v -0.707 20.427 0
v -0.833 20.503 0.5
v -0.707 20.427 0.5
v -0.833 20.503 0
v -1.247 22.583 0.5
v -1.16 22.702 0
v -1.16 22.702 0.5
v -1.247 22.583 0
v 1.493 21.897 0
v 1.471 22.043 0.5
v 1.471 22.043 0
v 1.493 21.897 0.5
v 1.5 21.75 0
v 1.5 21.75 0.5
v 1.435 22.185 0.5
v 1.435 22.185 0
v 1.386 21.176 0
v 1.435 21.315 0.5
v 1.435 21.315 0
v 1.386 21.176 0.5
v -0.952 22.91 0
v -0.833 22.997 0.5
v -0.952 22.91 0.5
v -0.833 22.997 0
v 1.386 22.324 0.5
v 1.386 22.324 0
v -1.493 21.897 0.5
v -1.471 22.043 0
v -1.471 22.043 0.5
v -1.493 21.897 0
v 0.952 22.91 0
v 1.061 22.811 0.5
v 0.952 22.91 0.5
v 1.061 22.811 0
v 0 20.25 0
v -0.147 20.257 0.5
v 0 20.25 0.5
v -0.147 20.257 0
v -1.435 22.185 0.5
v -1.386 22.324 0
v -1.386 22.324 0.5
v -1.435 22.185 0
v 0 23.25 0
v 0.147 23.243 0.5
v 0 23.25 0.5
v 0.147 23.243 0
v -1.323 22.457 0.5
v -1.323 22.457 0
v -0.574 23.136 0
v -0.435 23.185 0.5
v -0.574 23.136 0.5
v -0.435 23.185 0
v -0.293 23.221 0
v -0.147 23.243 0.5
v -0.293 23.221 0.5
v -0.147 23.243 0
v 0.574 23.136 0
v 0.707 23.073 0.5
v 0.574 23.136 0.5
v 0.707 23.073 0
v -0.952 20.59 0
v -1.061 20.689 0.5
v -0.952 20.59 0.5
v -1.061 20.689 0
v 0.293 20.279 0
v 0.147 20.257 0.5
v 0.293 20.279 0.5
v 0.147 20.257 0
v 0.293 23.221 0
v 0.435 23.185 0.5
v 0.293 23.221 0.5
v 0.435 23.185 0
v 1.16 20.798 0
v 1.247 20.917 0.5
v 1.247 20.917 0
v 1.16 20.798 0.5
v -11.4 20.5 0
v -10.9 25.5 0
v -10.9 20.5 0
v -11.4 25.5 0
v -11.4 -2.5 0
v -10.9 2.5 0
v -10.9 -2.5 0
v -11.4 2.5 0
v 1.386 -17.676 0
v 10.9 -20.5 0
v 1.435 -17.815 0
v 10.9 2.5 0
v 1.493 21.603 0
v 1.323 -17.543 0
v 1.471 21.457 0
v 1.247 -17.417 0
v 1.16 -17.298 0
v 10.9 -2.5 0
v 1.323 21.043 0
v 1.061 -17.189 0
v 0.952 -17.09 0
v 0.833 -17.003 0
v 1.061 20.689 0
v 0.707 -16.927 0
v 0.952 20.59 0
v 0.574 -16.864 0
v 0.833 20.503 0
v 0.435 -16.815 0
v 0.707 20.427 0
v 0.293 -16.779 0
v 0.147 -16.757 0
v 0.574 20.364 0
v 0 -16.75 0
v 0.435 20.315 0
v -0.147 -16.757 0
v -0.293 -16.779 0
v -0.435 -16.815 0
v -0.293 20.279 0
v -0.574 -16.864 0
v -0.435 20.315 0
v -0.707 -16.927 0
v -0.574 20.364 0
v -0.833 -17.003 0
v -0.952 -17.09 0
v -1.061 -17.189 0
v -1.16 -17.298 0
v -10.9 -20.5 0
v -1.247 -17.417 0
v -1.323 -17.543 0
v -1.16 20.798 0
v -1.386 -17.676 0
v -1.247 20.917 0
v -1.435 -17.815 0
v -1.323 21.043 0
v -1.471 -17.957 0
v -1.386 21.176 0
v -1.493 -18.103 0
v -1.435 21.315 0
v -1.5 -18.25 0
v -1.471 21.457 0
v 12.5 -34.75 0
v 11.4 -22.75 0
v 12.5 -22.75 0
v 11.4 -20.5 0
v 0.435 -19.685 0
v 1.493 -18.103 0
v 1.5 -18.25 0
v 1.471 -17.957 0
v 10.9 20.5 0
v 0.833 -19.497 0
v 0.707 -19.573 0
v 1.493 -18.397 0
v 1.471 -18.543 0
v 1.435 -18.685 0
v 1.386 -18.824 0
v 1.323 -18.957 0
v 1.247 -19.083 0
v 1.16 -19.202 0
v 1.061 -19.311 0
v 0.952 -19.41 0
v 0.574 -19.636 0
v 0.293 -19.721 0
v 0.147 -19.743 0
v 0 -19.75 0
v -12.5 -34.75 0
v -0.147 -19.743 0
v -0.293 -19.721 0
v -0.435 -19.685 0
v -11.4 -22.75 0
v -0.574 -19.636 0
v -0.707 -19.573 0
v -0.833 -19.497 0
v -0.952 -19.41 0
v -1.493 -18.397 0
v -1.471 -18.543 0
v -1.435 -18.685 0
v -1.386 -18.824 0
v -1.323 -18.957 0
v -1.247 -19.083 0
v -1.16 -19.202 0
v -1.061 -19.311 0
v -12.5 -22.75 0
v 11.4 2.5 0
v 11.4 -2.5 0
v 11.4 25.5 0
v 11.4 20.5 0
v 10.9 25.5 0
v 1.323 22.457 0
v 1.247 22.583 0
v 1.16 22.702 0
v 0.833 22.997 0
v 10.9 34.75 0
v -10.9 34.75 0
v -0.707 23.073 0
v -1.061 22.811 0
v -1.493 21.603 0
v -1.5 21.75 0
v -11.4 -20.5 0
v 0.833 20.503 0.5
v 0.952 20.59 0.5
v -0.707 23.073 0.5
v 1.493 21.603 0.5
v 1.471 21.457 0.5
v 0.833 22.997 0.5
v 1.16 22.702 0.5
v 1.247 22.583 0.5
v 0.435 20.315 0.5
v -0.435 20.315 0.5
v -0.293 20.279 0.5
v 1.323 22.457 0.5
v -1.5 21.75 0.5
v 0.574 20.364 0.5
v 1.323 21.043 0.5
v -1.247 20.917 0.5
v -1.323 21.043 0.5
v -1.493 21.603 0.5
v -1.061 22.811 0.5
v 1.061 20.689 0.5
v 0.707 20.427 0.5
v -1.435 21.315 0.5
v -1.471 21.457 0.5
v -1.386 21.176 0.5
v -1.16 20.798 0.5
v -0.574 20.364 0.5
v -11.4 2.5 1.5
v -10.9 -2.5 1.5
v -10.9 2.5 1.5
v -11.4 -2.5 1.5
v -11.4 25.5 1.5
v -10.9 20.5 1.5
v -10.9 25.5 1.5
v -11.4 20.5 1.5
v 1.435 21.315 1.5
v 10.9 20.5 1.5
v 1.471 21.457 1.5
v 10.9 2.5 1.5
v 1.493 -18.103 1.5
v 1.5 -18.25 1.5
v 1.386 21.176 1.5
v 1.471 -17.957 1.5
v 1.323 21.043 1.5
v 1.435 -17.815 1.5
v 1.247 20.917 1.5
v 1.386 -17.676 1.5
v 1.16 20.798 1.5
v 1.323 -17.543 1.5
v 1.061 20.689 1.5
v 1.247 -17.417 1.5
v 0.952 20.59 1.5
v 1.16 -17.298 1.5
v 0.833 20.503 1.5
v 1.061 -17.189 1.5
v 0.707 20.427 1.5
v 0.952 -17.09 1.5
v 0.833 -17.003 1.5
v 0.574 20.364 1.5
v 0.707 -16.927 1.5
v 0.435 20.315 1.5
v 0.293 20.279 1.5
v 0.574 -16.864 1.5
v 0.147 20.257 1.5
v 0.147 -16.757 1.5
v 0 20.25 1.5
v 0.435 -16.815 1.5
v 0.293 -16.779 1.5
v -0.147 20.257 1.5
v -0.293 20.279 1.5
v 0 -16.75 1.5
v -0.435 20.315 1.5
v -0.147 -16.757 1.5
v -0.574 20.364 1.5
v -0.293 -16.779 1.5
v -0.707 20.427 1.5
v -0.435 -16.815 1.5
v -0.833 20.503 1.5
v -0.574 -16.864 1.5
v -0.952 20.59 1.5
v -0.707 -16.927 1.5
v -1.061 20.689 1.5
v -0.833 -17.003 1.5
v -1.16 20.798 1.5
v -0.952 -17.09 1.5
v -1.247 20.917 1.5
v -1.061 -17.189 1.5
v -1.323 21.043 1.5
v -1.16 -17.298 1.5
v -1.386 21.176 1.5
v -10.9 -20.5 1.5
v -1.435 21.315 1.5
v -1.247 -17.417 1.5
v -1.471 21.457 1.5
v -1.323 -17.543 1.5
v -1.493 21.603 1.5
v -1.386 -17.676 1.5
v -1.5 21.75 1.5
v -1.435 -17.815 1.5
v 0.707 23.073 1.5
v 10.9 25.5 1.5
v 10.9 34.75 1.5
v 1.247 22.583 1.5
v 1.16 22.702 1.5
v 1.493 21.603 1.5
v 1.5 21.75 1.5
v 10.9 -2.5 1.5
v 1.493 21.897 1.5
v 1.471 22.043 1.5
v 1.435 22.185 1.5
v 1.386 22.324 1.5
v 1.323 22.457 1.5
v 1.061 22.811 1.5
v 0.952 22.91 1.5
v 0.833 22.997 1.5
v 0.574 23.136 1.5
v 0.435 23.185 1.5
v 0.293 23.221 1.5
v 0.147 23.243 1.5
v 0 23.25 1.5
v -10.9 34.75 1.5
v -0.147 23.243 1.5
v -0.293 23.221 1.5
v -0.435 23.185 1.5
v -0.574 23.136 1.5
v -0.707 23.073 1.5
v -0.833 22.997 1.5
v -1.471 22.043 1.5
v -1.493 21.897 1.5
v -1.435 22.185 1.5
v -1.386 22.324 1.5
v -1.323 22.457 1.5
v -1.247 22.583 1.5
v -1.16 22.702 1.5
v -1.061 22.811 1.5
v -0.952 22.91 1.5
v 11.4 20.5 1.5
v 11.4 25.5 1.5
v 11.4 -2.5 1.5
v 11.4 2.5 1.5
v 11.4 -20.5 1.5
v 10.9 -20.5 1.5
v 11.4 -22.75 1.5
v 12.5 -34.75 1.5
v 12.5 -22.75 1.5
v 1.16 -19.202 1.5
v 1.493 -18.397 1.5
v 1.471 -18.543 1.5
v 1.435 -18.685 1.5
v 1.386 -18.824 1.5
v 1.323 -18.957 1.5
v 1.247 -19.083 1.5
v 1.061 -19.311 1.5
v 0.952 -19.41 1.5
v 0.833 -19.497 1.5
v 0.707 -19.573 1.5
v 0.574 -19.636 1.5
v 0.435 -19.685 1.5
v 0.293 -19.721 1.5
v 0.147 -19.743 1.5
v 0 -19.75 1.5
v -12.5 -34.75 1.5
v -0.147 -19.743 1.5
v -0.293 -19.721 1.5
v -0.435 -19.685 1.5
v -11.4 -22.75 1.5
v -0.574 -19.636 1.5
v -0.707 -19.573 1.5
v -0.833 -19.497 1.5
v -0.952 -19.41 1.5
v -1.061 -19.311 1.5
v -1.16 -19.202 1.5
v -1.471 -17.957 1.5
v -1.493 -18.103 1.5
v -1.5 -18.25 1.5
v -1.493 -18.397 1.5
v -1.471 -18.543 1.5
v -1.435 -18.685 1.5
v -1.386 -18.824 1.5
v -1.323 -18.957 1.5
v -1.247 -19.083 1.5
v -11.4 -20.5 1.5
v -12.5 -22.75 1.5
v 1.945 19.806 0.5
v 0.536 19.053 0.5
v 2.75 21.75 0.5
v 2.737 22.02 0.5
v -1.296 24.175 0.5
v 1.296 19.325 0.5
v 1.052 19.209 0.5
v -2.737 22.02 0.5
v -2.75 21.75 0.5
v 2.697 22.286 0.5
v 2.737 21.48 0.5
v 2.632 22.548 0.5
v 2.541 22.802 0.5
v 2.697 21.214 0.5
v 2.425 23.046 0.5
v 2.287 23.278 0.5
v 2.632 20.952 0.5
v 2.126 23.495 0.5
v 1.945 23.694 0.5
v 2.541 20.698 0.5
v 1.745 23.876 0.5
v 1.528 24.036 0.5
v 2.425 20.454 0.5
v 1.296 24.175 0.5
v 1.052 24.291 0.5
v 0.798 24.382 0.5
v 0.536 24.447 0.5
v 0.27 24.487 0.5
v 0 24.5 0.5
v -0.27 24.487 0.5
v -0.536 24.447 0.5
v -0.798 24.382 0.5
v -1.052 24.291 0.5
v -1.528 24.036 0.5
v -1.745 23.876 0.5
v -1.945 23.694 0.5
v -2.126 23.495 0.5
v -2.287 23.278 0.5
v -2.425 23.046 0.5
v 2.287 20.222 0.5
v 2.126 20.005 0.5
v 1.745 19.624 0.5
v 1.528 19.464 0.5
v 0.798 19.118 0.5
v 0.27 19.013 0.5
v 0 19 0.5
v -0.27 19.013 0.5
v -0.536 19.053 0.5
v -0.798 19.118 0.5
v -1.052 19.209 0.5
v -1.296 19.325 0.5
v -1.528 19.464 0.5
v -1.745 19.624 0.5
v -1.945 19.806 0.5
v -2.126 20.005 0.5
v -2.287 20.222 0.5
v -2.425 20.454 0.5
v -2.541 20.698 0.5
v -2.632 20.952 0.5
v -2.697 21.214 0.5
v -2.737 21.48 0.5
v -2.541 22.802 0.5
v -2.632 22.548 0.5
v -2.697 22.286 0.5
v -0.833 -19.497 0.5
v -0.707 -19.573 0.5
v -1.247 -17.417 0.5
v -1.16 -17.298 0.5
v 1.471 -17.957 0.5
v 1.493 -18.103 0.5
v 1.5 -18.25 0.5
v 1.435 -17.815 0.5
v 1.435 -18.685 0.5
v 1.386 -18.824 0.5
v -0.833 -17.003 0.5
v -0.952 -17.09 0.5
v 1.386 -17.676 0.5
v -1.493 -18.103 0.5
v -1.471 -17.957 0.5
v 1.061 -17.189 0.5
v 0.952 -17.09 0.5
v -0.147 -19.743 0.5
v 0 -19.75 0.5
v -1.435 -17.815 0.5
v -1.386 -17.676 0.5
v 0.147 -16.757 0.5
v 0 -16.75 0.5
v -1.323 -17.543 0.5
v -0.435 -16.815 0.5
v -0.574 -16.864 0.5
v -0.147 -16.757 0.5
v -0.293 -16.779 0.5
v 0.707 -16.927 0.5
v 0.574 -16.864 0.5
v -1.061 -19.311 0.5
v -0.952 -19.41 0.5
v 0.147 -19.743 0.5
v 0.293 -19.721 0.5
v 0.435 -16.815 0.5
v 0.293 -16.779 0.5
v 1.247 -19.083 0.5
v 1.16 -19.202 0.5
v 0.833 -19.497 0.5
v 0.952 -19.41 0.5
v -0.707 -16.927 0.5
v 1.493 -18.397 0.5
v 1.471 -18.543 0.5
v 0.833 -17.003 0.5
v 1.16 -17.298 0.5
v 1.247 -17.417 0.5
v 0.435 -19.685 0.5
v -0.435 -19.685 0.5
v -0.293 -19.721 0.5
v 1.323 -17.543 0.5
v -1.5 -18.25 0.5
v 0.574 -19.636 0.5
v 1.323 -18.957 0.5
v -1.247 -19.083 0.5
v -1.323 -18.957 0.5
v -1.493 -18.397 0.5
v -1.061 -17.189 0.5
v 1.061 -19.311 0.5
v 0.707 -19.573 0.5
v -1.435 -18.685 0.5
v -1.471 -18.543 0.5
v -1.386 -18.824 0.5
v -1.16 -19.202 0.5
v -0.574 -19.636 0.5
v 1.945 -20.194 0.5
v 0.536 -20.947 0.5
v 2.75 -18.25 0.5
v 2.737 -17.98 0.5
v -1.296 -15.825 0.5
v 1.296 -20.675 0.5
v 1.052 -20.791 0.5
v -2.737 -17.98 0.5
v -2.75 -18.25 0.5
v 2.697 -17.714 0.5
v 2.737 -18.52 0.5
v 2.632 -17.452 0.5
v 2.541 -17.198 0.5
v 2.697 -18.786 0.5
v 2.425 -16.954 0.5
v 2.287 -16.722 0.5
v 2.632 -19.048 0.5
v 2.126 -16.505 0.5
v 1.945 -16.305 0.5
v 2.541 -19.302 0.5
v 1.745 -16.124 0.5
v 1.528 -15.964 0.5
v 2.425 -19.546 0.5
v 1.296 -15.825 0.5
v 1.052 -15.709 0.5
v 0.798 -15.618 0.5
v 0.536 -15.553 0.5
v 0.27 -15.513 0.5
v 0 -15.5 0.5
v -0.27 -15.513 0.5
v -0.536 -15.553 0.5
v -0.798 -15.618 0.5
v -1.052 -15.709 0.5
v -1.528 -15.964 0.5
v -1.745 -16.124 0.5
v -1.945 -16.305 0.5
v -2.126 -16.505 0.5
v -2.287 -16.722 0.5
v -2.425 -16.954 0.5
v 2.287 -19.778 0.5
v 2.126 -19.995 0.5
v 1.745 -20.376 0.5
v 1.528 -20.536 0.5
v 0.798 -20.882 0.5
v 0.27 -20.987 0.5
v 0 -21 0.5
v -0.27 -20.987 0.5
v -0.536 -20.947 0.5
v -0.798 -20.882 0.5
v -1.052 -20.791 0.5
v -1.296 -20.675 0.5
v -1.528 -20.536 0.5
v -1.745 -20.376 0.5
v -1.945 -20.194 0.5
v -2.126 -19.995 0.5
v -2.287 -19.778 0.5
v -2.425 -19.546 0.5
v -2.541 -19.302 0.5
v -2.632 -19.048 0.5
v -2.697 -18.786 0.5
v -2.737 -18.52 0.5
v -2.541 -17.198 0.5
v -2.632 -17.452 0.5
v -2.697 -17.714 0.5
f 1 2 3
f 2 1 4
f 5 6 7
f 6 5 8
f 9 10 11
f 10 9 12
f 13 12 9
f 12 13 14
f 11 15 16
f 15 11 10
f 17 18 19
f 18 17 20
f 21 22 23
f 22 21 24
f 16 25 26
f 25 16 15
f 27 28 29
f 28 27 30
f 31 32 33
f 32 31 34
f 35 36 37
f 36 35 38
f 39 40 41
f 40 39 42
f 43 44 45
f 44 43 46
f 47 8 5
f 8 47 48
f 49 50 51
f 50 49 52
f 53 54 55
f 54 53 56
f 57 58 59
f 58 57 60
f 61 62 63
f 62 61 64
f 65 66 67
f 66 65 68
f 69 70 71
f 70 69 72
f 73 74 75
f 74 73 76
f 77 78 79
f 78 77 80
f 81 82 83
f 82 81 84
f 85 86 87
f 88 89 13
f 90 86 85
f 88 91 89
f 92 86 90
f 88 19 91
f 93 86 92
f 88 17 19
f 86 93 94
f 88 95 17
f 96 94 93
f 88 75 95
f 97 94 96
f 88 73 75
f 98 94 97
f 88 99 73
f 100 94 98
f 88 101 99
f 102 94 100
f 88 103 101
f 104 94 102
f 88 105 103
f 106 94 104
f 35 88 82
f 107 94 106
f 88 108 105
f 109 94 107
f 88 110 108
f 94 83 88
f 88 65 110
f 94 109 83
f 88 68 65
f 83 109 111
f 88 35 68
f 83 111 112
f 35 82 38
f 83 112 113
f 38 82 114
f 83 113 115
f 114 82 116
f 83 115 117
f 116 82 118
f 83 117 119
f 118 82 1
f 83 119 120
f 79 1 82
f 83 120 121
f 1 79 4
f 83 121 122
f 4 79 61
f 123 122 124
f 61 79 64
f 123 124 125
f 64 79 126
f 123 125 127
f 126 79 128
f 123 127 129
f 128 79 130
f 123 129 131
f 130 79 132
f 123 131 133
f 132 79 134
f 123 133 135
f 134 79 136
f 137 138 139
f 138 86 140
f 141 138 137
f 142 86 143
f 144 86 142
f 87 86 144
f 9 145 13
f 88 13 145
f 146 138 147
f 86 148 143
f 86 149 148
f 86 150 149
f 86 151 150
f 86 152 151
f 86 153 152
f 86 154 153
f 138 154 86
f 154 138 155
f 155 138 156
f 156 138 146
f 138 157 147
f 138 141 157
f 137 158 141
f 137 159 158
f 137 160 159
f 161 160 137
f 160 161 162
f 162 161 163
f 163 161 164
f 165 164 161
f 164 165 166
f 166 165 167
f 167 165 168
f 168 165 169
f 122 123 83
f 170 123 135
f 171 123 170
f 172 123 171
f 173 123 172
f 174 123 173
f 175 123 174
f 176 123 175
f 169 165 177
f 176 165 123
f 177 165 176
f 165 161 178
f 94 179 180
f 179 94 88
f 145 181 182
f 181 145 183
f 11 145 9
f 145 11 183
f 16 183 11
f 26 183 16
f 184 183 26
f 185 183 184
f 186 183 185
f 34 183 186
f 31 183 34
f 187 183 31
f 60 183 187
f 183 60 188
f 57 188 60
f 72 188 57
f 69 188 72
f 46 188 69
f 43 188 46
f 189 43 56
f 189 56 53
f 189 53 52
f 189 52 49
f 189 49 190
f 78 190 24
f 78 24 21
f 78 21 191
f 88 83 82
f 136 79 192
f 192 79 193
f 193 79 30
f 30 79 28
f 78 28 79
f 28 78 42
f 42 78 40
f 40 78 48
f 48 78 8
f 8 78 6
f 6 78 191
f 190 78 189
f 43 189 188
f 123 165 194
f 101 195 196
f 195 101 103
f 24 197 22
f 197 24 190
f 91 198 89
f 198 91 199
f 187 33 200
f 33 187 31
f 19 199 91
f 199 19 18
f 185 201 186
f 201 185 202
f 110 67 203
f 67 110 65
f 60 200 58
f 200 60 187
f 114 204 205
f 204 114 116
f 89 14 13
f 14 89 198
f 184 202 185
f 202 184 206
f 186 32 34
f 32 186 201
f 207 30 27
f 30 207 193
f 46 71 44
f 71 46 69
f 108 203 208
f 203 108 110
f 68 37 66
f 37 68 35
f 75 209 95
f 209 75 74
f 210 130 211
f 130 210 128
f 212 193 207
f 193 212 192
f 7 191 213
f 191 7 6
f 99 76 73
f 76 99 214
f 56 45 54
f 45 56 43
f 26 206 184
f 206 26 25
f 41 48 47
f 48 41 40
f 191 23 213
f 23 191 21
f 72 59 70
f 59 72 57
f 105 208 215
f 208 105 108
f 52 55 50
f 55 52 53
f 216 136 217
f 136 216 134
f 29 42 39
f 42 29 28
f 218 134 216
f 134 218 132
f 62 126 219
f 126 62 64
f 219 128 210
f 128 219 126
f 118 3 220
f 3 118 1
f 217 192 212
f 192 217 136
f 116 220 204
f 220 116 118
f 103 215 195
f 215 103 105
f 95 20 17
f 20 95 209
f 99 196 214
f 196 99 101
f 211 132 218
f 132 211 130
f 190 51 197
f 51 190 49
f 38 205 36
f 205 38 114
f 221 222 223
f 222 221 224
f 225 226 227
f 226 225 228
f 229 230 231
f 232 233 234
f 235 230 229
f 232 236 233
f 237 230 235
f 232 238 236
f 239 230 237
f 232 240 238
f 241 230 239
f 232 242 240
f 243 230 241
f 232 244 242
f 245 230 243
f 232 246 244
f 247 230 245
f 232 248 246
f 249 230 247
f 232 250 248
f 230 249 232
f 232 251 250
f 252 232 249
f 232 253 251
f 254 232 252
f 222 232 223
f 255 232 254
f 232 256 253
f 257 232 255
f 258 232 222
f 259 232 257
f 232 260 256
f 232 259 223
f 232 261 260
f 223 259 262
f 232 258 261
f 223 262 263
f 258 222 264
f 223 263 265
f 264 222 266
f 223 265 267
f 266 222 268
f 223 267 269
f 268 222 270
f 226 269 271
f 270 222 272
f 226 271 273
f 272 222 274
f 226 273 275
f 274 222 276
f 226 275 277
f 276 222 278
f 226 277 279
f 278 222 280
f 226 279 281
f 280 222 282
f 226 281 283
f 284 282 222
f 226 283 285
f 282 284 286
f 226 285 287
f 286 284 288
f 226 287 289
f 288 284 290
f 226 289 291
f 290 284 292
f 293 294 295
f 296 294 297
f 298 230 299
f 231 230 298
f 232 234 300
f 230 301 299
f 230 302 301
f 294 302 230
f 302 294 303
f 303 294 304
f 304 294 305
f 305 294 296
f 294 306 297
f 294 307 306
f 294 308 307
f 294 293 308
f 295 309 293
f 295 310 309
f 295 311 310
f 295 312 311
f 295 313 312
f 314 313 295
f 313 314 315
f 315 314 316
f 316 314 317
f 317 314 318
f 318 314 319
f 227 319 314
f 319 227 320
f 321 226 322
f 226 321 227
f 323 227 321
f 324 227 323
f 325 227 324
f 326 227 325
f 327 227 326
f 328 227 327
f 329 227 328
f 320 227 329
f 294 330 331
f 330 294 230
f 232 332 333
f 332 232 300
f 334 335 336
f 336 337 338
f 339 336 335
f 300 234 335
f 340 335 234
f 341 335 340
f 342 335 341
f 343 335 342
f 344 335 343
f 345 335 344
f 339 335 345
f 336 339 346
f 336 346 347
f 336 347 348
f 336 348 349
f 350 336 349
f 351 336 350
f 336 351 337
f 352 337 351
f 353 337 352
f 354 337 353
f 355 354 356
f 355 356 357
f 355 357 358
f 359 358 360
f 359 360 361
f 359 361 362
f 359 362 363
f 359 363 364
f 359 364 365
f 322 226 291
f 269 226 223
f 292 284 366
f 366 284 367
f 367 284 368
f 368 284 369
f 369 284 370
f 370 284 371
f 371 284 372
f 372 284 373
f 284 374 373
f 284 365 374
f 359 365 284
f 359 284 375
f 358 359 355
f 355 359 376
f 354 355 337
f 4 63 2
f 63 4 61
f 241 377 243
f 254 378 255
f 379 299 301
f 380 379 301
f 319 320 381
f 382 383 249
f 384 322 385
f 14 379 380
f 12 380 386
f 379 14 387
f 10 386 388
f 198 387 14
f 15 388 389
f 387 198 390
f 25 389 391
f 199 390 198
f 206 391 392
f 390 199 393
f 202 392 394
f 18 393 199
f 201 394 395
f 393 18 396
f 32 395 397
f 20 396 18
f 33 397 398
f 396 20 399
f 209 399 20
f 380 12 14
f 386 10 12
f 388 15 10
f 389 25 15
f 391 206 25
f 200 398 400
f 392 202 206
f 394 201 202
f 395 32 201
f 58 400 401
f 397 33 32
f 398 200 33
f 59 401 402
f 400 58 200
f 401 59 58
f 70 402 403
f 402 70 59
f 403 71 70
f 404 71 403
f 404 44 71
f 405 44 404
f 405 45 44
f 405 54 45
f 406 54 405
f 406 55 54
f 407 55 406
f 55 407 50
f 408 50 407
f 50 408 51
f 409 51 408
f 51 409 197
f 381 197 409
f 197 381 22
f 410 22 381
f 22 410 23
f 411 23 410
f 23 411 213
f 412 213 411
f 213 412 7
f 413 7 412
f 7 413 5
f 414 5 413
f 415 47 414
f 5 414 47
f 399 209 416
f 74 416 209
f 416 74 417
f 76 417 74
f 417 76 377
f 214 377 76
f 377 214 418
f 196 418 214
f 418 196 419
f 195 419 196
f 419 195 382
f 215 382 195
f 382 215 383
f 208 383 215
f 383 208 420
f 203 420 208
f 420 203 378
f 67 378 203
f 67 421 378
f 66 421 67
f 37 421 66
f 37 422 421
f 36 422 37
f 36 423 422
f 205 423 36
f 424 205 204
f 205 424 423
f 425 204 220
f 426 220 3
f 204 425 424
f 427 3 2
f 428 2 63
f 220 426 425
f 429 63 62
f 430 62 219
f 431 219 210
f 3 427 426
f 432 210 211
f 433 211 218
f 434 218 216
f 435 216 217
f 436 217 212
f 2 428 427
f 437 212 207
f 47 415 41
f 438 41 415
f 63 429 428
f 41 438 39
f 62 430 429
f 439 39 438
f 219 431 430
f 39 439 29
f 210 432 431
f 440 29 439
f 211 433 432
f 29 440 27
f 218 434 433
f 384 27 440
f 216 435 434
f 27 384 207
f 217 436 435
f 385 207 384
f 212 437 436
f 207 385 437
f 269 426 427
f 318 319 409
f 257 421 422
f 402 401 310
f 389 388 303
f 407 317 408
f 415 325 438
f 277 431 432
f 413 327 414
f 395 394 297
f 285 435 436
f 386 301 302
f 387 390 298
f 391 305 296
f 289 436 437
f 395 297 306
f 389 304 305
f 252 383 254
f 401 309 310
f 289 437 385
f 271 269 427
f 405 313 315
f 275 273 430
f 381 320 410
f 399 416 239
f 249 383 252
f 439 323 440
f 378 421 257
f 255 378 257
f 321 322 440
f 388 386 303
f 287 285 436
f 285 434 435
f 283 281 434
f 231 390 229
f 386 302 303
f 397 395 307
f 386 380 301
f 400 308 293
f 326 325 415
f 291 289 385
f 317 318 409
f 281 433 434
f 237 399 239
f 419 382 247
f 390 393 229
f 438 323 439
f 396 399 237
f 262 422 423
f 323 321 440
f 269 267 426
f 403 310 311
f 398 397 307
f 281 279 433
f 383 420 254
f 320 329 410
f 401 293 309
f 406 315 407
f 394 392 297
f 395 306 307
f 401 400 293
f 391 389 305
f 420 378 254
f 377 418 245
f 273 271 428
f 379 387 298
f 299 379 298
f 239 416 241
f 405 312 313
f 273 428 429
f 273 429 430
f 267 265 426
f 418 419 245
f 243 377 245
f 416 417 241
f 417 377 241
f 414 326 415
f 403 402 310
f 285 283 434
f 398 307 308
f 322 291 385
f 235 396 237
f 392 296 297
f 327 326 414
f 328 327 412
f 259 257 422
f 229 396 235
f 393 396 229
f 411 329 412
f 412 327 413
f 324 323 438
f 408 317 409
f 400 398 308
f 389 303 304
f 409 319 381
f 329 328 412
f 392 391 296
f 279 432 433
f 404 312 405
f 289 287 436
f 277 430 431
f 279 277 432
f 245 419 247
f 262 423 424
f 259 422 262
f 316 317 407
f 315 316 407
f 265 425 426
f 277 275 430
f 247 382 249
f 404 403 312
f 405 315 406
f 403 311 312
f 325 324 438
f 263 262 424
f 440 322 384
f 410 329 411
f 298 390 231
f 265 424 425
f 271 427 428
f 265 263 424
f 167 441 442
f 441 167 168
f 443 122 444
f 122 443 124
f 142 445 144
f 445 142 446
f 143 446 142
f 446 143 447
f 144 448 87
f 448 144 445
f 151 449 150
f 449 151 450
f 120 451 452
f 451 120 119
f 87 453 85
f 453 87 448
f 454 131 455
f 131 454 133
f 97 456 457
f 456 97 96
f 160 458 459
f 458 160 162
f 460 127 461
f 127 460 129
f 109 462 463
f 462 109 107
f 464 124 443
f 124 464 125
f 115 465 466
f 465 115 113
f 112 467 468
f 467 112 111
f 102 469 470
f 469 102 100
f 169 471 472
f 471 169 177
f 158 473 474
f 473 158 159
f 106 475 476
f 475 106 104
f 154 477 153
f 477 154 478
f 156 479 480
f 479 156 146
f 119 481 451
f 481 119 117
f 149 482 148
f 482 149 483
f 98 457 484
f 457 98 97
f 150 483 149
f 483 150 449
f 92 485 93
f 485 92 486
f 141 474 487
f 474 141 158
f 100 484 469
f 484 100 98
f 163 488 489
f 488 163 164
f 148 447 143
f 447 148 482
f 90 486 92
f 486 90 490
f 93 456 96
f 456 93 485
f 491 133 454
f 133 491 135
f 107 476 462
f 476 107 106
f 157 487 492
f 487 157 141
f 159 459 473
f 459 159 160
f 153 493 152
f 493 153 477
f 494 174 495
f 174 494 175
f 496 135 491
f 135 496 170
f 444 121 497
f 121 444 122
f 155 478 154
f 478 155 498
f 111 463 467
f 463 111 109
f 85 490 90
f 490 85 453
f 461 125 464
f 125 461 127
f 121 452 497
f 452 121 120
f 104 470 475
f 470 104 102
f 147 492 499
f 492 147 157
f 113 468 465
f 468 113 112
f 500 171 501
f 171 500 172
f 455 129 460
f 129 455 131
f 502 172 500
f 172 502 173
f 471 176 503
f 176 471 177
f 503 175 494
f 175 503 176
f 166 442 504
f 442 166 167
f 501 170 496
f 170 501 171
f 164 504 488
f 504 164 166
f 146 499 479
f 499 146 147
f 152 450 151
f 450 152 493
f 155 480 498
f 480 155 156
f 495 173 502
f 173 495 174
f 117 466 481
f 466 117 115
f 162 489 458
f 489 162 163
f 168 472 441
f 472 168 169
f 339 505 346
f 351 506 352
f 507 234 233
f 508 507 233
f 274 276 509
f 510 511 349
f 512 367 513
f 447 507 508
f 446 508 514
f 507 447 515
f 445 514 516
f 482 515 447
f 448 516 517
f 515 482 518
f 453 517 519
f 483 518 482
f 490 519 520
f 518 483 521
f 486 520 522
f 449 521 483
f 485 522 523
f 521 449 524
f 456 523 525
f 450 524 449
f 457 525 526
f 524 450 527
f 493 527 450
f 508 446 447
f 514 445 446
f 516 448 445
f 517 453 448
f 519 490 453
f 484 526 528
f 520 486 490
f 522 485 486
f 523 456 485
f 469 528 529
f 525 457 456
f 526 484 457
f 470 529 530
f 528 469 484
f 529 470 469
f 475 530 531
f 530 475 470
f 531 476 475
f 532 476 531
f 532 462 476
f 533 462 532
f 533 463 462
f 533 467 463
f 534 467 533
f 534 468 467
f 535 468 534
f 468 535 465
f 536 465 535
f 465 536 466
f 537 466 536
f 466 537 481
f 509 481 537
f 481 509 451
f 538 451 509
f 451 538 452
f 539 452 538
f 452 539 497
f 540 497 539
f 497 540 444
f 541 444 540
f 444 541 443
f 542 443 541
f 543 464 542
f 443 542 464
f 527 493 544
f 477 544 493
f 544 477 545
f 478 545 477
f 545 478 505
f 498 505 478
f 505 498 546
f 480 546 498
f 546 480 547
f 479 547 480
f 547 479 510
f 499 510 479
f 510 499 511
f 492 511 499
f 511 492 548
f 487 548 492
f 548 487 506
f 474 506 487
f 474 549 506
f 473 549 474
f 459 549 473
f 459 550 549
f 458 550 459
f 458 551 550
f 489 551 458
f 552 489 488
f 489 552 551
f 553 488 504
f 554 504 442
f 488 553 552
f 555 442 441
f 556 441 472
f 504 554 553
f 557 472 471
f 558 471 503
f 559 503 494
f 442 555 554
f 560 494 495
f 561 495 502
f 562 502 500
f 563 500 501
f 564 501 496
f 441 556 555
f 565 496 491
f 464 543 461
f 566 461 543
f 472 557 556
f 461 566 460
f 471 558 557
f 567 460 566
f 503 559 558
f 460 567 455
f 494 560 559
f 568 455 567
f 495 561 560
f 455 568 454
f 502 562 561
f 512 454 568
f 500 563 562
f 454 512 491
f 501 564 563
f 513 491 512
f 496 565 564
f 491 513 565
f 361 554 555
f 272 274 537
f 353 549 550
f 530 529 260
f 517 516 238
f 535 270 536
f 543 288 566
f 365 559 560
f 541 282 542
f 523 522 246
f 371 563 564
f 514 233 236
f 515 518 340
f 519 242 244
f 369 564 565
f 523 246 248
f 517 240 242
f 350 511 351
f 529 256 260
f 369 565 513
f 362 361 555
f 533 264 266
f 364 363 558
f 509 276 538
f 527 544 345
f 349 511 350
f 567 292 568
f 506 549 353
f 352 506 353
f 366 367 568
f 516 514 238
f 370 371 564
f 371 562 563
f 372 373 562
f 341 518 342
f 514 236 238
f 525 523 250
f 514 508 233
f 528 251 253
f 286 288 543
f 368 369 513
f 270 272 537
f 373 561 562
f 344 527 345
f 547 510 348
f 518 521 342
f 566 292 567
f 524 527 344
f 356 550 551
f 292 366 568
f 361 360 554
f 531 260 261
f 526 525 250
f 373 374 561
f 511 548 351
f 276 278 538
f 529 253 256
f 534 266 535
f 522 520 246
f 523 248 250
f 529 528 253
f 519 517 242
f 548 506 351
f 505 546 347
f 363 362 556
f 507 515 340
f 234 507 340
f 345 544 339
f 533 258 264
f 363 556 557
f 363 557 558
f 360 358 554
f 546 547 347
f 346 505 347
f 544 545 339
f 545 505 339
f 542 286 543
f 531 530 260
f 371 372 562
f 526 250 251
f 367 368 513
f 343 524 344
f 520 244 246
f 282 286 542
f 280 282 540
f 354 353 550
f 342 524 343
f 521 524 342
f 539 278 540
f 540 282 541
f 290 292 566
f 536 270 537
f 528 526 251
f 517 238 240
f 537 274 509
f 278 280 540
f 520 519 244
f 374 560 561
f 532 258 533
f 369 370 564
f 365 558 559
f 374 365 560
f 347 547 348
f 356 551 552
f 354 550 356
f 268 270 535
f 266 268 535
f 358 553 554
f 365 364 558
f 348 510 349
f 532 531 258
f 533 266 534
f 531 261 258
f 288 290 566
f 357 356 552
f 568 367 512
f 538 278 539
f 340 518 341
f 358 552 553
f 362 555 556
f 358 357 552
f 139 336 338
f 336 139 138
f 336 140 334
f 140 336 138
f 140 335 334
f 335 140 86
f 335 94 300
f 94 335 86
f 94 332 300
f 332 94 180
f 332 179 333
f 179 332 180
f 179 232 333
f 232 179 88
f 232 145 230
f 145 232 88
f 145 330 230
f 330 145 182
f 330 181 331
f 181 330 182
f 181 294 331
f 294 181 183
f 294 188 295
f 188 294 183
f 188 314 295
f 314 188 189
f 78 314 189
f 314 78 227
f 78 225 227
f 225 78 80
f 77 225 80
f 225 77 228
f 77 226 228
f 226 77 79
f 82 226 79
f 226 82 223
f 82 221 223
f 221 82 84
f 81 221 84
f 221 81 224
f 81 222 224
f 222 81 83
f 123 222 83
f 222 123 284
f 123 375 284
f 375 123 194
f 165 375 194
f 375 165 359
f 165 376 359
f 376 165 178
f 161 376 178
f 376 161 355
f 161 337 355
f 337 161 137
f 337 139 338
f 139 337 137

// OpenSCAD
$fn = 64;

// Thickness of the plate
thickness = 1.5;

// Overall plate dimensions
plate_height = 69.5;
plate_width  = 21.8;

// Dimensions of the wider bottom section
wide_width  = 25;
wide_height = 12;

// Small side tabs used as guides
// These expand the width to 22.8 mm at three locations
// along the height of the plate
tab_width  = 22.8;
tab_height = 5;
// y positions for the centre of each tab relative to the
// centre of the plate (positive is up)
tab_positions = [23, 0, -23];

// Screw hole measurements
hole_spacing = 40;        // distance between hole centres
hole_d      = 3;          // diameter of screw shaft
csk_d       = 5.5;        // diameter of countersunk head
csk_depth   = 1;          // depth of countersink

// Distance from top edge to centre of first screw hole
// (used to place both holes)
top_to_first_hole = 13;

module backplate2d() {
    union() {
        // main rectangle
        square([plate_width, plate_height], center=true);
        // wider bottom section
        translate([0, -plate_height/2 + wide_height/2])
            square([wide_width, wide_height], center=true);
        // guiding tabs
        for (y = tab_positions)
            translate([0, y])
                square([tab_width, tab_height], center=true);
    }
}

module countersunk_hole() {
    // screw shaft
    cylinder(h = thickness, d = hole_d, center=false);
    // countersink
    translate([0,0,thickness - csk_depth])
        cylinder(h = csk_depth, d1 = csk_d, d2 = hole_d, center=false);
}

// Create the 3D plate and remove the countersunk screw holes
module backplate() {
    difference() {
        linear_extrude(thickness) backplate2d();
        for (i = [0:1]) {
            translate([0, plate_height/2 - top_to_first_hole - i*hole_spacing, 0])
                countersunk_hole();
        }
    }
}

// Render the backplate
backplate();
